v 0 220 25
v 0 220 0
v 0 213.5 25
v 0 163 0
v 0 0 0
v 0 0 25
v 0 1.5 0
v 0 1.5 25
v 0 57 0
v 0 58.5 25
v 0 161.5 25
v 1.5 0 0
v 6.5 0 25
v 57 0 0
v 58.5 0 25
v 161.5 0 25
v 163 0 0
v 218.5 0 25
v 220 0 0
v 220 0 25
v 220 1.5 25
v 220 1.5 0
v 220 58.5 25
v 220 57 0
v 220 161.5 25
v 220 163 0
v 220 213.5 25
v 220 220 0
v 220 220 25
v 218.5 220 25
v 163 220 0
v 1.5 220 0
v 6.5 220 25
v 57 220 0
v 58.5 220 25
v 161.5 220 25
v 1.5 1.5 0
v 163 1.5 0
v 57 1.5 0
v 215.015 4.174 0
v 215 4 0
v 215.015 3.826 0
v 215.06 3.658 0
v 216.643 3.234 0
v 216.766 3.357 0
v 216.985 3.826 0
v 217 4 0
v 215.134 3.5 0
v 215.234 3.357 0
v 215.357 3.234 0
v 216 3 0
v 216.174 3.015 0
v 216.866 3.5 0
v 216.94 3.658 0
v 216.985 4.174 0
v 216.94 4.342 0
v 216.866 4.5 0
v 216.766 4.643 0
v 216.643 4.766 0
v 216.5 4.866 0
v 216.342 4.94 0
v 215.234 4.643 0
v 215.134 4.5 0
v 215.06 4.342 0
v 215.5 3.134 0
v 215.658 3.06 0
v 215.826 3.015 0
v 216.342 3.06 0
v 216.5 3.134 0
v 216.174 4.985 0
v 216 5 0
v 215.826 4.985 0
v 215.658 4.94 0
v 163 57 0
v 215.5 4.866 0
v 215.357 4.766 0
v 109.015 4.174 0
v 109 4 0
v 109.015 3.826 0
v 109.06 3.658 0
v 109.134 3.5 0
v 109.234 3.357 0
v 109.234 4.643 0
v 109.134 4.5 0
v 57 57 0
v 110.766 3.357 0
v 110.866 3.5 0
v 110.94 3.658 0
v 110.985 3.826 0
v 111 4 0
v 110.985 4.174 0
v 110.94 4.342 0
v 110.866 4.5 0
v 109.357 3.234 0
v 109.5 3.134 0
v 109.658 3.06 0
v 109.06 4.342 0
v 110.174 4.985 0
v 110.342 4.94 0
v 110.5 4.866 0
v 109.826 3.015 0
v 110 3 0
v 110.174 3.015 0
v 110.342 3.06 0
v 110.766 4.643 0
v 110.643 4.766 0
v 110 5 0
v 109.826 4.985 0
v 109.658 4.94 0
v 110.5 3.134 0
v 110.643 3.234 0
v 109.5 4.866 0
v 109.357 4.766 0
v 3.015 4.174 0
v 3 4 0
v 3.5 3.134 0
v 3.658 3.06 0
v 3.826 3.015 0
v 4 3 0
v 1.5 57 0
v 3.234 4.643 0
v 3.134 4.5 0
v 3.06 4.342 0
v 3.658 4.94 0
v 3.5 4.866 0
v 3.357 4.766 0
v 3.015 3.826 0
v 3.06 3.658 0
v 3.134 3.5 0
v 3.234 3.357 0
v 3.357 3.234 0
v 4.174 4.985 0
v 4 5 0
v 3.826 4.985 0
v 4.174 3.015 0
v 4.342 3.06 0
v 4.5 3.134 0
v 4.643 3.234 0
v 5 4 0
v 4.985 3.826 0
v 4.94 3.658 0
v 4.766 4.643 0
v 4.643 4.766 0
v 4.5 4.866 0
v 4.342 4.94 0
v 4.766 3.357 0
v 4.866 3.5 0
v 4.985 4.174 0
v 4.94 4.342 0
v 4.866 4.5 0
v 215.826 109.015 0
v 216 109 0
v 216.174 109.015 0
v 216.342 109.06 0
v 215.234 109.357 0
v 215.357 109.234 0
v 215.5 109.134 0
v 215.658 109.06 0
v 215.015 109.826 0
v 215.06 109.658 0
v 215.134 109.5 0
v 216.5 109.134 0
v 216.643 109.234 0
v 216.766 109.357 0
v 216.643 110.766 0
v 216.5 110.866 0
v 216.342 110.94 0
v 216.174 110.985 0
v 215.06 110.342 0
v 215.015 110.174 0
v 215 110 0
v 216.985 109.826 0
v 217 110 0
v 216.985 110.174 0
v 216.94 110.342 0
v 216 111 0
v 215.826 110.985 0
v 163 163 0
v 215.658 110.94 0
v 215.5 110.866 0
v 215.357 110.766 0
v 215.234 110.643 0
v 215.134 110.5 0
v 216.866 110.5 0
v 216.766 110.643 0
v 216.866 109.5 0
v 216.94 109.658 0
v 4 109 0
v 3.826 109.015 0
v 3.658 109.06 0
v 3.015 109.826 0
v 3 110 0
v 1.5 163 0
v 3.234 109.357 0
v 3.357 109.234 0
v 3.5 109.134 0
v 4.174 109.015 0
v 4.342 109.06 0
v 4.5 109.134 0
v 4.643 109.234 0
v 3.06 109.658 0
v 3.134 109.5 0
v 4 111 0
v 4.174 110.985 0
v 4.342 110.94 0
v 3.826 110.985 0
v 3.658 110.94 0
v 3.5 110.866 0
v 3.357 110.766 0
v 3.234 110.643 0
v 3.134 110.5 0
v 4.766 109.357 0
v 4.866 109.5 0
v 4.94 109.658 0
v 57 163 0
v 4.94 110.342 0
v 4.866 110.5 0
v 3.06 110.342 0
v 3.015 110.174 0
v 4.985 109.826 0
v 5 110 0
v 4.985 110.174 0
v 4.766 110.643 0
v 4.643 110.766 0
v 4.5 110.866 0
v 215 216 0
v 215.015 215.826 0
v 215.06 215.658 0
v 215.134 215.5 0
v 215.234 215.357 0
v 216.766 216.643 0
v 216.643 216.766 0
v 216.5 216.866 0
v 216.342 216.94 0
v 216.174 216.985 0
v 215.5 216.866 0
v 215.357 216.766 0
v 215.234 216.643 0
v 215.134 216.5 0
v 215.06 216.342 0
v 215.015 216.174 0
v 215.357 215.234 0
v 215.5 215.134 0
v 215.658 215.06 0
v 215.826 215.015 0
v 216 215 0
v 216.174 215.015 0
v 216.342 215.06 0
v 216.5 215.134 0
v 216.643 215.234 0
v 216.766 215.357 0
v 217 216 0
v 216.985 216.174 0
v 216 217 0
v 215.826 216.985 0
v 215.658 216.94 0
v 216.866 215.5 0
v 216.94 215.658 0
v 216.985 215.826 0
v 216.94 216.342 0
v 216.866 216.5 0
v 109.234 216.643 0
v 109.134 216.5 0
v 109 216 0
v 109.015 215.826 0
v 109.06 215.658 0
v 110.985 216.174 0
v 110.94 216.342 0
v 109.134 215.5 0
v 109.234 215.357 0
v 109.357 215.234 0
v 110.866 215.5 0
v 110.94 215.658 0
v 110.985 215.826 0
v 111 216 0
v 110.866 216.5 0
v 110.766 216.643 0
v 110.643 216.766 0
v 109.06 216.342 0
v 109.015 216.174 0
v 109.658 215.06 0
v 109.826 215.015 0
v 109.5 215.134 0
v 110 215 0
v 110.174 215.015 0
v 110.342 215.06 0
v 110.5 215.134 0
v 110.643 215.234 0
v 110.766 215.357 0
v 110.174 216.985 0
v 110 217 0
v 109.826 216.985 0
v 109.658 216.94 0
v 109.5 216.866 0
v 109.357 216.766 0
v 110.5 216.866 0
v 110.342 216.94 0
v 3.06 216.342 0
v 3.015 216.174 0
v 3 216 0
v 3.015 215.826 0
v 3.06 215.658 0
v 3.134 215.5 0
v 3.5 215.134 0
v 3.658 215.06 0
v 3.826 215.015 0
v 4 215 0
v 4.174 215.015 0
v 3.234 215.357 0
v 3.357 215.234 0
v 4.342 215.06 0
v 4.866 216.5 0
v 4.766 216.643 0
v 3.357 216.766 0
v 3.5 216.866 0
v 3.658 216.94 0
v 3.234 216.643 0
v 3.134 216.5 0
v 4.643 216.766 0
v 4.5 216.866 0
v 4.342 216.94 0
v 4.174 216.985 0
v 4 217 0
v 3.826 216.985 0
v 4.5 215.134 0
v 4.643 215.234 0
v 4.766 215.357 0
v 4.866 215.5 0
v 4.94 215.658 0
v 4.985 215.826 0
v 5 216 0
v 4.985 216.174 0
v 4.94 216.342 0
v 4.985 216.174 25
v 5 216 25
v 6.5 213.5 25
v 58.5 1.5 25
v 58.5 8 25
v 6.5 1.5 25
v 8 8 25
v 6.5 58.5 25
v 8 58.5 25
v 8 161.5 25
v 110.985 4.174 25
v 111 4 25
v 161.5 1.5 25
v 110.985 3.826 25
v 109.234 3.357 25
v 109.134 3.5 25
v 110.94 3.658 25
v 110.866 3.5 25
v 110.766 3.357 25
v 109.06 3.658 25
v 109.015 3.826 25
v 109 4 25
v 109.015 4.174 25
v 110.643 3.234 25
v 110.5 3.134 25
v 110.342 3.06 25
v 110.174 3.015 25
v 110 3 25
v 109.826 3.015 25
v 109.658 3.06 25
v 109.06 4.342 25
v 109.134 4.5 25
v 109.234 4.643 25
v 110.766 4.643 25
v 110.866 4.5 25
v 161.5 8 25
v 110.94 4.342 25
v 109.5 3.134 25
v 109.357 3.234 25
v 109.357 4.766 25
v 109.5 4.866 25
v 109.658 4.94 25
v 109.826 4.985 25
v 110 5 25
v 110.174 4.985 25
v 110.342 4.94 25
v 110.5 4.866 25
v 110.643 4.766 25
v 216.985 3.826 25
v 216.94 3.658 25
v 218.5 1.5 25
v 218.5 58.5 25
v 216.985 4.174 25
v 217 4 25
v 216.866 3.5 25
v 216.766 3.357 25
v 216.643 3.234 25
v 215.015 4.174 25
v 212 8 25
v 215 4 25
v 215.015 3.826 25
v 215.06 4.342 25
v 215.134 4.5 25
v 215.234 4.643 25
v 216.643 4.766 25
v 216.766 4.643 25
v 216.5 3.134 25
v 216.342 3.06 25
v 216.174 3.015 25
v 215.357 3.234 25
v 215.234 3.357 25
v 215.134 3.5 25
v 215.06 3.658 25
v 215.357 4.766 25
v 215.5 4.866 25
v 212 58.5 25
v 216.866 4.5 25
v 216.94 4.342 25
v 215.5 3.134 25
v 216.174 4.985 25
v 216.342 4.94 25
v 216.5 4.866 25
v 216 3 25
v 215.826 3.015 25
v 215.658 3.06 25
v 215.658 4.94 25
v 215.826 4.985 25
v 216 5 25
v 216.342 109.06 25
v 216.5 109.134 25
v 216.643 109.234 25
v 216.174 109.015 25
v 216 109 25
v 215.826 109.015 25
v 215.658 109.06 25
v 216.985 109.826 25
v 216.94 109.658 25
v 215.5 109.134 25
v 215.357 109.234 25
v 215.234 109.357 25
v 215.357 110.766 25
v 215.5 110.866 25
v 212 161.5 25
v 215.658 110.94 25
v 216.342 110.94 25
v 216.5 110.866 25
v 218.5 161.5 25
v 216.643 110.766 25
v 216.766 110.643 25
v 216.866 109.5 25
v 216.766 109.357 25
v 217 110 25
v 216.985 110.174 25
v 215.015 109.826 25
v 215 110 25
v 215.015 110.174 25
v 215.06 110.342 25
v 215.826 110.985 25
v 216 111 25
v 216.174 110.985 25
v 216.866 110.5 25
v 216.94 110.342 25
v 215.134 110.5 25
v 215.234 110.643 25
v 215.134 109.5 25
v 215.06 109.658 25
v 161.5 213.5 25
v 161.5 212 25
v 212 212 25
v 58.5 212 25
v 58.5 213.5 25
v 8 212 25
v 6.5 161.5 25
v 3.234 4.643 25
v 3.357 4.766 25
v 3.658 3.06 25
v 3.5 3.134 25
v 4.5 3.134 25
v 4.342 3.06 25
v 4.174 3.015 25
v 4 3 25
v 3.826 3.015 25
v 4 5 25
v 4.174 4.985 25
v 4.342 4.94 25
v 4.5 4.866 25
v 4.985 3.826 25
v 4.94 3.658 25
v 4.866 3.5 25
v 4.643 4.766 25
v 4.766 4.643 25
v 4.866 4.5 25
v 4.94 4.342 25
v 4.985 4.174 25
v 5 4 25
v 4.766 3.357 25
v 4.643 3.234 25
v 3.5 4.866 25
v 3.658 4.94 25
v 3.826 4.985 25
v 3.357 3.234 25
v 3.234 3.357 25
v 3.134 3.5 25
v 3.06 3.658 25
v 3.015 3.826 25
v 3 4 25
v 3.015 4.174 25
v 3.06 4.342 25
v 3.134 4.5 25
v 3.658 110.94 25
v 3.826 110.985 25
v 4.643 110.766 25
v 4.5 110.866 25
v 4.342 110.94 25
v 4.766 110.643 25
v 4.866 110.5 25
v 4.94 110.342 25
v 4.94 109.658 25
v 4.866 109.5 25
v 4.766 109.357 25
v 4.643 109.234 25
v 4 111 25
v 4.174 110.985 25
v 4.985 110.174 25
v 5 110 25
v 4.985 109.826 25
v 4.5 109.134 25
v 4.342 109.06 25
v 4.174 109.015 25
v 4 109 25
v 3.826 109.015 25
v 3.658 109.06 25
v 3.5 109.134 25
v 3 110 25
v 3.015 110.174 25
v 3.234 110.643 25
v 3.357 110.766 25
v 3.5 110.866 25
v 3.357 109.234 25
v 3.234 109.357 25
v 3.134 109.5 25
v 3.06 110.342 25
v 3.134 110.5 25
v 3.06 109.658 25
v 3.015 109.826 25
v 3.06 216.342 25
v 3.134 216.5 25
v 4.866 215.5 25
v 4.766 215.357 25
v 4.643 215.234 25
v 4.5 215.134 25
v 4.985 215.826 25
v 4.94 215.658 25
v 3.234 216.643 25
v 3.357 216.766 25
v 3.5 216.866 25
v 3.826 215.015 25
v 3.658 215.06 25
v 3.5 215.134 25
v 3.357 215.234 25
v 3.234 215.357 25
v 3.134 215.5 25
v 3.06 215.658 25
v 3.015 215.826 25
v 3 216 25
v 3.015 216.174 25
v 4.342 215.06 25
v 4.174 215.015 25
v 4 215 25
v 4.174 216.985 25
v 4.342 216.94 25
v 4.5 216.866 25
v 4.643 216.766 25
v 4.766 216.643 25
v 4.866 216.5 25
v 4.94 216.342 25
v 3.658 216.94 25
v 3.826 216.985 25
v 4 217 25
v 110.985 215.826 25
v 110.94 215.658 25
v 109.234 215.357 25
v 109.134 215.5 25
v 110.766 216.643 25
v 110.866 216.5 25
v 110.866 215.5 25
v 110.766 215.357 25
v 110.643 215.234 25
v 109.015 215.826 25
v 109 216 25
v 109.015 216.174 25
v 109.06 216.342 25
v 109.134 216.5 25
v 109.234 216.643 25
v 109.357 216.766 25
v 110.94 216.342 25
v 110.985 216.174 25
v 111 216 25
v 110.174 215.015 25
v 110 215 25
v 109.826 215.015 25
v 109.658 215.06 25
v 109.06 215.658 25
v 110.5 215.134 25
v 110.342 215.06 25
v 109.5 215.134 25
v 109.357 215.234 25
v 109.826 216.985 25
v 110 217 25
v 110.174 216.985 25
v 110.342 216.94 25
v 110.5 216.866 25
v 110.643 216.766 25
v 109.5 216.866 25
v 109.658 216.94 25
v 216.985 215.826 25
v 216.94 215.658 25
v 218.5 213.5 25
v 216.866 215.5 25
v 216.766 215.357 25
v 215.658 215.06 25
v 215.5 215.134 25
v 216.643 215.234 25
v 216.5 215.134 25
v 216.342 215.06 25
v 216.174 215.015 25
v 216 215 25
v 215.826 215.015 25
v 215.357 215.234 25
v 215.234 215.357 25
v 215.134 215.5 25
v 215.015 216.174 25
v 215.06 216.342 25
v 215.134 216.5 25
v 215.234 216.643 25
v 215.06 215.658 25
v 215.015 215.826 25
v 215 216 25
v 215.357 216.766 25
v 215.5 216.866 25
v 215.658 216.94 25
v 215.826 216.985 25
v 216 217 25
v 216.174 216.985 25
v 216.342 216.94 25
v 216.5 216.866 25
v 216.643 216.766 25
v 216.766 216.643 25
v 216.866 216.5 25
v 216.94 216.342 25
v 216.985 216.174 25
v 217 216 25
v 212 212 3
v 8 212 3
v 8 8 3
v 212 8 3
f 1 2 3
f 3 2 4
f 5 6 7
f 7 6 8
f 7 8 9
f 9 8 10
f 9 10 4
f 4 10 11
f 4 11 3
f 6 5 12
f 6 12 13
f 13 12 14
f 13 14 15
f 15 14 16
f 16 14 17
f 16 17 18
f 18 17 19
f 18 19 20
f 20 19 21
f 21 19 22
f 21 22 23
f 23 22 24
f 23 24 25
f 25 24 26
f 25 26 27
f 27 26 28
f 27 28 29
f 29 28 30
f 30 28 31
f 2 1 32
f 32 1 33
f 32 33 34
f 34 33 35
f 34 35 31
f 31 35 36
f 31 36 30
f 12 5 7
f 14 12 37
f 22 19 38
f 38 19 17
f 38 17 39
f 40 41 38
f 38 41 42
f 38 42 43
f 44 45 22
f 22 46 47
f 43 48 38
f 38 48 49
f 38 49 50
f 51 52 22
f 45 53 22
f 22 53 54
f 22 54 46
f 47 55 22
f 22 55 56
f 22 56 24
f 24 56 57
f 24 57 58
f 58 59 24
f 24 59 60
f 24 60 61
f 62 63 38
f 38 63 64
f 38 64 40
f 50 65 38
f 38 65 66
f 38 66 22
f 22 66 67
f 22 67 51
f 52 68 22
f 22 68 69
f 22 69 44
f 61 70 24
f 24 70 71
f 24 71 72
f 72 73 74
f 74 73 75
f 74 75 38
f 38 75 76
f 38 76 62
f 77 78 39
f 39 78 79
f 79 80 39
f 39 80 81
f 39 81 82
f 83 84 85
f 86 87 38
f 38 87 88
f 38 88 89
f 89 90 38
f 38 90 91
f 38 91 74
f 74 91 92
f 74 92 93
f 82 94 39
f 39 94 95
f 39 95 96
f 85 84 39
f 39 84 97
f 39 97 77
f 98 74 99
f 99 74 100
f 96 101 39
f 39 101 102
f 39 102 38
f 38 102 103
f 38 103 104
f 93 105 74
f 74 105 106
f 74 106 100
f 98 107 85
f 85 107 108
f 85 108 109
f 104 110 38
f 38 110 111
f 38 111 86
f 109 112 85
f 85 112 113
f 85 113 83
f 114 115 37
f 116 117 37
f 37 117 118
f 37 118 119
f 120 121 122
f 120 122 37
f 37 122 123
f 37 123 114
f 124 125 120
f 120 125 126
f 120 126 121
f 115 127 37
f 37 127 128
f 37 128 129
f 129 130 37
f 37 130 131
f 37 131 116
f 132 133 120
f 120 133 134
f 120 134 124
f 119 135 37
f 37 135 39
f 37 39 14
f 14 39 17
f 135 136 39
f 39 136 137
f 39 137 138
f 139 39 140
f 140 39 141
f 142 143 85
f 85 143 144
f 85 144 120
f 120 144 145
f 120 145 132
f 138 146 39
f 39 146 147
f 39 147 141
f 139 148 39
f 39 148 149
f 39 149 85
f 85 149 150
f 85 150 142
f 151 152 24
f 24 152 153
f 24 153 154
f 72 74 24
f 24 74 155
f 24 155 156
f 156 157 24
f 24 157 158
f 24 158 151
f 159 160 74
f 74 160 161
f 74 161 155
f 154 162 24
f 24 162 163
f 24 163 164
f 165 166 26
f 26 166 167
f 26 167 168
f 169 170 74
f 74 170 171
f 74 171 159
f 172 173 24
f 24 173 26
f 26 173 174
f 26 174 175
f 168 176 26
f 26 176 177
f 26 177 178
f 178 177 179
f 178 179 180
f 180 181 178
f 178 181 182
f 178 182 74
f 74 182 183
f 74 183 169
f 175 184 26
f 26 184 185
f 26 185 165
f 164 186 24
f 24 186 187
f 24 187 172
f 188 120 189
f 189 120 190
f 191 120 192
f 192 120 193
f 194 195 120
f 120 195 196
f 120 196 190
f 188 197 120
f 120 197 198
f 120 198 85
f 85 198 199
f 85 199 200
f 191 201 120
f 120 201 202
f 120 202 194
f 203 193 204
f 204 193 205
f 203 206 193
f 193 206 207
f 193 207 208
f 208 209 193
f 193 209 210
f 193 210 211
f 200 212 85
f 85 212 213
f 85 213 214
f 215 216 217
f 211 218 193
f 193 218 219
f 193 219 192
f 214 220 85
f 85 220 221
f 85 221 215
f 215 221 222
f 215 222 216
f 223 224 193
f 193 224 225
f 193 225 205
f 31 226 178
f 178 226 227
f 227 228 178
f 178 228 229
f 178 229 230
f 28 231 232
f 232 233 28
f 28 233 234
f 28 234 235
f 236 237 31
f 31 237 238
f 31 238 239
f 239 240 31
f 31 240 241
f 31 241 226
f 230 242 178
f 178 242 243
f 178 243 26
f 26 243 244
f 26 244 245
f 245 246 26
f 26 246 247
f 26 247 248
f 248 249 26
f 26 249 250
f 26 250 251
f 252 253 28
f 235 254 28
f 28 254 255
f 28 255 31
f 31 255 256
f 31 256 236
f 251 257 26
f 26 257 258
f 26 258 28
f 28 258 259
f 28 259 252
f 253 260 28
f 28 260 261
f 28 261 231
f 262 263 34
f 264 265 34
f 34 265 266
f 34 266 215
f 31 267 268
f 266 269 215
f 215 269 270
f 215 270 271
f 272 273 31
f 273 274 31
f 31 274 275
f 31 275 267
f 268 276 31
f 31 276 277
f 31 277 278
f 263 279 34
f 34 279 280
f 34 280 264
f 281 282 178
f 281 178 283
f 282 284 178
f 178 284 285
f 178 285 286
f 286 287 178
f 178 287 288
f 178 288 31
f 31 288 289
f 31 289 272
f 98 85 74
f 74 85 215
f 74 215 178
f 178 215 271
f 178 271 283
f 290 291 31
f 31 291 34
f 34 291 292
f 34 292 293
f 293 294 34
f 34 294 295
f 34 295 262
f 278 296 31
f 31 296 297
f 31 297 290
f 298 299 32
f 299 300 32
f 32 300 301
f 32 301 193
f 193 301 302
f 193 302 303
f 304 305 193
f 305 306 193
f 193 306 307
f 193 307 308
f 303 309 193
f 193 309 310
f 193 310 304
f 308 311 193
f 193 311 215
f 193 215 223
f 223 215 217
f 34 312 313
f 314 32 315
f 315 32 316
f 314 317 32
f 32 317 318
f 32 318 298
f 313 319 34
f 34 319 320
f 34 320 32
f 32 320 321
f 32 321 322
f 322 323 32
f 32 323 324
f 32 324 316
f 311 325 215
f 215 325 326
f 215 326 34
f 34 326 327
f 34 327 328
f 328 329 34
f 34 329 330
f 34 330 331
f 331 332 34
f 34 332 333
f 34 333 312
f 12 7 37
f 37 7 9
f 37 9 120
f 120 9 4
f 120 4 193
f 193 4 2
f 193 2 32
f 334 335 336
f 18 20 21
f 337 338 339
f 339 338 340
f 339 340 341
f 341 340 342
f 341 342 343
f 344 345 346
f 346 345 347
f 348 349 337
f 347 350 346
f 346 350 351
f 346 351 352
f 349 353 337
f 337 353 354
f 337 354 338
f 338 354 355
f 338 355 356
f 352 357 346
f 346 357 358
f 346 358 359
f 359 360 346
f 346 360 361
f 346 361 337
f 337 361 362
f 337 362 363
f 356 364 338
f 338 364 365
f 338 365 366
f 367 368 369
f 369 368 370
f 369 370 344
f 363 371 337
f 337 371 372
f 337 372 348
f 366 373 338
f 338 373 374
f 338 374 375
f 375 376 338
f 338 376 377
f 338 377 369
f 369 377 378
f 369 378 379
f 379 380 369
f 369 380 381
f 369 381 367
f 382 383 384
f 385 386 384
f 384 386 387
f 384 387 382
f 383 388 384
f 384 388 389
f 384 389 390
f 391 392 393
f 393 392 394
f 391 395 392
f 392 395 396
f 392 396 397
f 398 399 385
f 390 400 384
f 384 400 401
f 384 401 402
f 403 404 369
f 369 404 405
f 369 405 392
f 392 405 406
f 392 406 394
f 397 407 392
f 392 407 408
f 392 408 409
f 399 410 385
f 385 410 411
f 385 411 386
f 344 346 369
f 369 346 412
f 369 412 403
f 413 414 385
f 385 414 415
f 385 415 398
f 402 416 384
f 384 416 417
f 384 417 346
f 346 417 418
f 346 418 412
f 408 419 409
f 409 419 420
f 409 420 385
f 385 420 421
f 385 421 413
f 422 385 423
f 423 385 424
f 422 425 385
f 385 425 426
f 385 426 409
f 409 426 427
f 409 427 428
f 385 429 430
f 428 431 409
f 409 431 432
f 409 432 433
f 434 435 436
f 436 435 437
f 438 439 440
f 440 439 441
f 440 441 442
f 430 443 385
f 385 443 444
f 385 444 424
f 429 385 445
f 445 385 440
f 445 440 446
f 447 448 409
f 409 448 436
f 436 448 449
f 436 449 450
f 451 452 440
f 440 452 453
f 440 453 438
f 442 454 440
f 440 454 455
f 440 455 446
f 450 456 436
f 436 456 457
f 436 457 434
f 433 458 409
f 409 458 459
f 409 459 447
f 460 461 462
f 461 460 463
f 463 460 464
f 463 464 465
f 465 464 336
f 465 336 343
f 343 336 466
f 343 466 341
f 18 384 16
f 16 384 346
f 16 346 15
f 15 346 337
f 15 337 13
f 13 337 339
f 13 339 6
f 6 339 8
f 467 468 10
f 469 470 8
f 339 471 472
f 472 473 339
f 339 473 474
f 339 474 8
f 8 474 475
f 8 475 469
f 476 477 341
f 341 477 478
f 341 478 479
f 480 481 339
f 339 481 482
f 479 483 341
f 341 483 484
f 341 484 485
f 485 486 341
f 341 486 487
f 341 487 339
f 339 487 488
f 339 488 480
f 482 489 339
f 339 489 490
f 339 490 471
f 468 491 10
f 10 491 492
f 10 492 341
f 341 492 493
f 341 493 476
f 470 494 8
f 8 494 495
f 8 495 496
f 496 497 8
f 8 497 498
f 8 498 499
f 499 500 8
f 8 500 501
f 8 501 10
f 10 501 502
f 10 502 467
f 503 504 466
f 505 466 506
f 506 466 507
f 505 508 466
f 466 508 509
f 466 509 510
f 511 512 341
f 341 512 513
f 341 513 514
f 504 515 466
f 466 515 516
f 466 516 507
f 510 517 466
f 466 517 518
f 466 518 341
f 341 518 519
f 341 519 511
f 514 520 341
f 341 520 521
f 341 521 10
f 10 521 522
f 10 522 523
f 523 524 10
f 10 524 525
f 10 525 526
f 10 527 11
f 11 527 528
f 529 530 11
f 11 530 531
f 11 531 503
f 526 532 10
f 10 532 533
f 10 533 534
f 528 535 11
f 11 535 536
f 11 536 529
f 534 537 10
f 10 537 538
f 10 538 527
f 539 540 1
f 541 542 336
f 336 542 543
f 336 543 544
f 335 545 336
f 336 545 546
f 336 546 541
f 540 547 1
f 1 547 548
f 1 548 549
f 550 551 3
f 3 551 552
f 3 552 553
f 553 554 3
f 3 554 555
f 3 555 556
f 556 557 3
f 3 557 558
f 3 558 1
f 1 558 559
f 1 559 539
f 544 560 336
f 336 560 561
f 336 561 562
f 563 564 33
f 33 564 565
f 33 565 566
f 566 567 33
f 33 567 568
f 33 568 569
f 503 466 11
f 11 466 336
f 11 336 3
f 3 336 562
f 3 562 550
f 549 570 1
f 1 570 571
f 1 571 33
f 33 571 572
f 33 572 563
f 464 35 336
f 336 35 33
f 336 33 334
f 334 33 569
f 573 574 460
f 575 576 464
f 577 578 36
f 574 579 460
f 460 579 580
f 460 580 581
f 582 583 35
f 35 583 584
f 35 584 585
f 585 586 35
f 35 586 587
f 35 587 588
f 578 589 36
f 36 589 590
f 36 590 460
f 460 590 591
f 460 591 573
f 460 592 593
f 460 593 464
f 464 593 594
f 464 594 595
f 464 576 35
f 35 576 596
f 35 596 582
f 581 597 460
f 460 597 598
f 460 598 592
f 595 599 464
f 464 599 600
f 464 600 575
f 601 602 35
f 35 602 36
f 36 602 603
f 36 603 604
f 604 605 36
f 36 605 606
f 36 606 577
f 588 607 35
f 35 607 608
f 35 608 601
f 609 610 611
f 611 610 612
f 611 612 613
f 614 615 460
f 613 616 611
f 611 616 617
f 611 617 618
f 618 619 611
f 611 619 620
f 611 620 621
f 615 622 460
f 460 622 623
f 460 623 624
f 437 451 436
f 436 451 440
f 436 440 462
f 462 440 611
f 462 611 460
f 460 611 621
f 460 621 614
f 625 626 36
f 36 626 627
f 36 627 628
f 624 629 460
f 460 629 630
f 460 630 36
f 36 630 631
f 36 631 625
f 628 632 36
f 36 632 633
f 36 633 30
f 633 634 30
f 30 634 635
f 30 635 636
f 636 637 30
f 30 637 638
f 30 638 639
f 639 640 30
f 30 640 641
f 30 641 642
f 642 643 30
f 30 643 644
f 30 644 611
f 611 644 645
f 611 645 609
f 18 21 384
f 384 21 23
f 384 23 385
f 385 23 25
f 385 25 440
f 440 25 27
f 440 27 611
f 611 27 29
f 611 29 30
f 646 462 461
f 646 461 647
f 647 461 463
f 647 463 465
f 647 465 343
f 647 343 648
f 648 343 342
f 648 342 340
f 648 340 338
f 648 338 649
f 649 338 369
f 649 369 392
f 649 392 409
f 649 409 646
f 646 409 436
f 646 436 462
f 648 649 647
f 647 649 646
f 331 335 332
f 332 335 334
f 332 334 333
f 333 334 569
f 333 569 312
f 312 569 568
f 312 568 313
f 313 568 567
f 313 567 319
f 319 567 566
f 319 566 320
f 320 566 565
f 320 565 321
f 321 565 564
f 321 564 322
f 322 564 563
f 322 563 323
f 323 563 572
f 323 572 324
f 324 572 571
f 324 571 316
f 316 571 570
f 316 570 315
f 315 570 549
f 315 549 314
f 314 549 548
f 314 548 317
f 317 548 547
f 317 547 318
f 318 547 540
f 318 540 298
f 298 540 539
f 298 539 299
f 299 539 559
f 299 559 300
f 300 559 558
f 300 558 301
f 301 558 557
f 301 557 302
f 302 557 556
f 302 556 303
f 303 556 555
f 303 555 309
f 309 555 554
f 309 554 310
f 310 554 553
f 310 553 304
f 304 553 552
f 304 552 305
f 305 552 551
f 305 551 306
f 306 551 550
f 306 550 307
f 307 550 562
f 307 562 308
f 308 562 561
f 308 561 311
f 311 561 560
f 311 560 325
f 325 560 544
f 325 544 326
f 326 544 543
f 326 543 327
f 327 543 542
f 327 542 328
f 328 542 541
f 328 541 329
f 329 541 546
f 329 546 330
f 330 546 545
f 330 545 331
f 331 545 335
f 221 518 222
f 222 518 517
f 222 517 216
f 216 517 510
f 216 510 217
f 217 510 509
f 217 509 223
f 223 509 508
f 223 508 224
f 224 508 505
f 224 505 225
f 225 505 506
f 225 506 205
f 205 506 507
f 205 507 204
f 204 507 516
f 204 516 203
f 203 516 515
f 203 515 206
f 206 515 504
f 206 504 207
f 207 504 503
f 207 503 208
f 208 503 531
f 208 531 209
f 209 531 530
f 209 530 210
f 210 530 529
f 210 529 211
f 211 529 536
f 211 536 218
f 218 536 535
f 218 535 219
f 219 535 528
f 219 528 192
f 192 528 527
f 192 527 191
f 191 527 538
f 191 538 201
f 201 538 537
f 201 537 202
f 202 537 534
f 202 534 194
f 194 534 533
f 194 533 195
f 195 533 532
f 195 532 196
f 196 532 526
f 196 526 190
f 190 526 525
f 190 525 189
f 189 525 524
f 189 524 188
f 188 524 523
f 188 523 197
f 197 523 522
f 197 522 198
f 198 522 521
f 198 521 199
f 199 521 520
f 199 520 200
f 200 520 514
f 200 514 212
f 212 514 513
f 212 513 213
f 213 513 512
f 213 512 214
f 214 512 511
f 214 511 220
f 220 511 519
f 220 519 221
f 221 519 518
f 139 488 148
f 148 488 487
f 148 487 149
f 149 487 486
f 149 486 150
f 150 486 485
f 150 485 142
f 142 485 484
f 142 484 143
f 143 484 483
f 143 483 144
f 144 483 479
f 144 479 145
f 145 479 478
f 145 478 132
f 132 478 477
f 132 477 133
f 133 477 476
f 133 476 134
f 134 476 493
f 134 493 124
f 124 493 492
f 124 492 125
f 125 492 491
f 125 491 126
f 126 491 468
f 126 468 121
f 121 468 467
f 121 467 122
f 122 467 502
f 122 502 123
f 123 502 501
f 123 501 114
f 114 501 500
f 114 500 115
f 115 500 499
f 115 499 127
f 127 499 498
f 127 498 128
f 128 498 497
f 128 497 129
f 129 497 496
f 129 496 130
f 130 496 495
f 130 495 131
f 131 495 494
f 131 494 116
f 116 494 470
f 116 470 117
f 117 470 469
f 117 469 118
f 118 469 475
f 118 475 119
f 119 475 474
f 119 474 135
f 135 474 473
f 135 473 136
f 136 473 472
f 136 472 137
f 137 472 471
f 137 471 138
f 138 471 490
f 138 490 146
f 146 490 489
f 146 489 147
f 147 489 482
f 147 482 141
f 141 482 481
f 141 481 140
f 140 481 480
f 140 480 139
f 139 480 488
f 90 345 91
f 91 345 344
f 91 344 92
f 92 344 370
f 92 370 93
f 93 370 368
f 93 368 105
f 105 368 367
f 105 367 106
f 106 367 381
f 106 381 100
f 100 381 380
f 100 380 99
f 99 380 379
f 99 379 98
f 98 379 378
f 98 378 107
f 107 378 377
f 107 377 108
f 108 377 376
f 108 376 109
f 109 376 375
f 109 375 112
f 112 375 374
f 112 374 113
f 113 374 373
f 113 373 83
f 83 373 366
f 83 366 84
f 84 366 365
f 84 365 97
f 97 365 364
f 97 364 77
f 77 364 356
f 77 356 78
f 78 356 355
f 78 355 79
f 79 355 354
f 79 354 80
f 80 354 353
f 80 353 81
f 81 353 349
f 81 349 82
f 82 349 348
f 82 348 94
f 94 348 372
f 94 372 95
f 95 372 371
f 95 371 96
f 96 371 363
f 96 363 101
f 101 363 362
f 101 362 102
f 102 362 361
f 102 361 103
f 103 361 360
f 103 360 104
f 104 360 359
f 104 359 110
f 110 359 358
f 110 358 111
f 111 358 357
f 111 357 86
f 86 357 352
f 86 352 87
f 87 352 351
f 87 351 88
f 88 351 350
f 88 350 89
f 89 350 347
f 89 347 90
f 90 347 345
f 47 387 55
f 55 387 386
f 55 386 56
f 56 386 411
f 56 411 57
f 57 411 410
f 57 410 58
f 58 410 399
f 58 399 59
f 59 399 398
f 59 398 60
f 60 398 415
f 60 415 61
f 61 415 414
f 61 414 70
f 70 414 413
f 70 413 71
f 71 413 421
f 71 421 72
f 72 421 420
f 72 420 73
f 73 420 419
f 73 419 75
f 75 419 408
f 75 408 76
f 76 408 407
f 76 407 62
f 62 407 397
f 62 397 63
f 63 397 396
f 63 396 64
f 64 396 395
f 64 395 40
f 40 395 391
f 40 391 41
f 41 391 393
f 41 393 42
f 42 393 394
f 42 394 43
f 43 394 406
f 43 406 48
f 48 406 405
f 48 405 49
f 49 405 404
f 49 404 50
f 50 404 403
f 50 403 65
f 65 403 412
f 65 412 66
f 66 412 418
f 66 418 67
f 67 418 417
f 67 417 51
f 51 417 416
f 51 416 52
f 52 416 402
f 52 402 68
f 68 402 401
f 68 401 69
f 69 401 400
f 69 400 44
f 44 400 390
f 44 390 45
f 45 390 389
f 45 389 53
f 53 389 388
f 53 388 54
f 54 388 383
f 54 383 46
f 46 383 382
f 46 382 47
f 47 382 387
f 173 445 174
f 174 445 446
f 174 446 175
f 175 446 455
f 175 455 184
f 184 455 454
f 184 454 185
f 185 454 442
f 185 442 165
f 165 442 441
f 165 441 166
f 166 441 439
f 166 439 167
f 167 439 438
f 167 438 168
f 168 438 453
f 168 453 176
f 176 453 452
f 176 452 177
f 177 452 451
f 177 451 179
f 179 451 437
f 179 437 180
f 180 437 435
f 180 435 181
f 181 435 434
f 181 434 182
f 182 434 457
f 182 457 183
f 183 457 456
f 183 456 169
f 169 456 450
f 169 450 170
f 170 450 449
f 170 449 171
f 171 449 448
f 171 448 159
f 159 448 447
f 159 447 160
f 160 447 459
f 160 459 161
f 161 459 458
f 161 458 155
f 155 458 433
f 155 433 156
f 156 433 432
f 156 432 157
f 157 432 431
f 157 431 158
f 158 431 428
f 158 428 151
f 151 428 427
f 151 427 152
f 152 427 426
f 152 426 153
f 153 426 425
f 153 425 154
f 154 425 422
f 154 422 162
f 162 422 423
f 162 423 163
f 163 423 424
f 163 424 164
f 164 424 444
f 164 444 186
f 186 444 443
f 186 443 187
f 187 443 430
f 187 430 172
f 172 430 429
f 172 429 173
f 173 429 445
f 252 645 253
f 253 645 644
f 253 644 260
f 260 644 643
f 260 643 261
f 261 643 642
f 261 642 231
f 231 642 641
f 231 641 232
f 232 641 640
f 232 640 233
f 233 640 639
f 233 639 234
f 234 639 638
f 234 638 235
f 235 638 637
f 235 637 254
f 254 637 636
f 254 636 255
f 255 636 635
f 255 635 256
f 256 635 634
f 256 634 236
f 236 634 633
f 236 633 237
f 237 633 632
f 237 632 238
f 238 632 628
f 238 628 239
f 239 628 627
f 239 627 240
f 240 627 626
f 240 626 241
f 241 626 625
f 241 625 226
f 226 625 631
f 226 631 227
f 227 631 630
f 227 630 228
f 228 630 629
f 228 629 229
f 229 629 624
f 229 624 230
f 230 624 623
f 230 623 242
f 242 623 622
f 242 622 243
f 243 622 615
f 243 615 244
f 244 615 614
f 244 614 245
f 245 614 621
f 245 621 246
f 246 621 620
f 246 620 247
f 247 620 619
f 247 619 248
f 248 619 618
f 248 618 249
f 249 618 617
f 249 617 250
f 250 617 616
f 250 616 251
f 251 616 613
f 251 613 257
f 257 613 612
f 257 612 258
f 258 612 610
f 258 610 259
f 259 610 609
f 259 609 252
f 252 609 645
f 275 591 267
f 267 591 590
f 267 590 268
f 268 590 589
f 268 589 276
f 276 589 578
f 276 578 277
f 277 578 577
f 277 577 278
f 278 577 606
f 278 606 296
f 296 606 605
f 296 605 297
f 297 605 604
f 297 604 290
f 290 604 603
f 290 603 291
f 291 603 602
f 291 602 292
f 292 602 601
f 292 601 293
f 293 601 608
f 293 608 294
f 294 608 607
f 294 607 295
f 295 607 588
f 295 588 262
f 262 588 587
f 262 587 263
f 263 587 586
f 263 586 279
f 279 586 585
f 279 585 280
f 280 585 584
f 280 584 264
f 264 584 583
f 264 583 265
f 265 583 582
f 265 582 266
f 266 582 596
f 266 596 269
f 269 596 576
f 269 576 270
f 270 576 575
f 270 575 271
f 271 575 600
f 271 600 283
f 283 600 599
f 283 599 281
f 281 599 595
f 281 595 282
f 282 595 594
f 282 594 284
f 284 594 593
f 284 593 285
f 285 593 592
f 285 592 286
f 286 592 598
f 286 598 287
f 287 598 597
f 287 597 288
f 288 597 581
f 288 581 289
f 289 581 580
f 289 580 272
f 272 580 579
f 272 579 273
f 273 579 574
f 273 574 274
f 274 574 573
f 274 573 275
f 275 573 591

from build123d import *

# Parameters (mm, degrees)
SKETCH1_W           = 220
SKETCH1_H           = 220
BOSS_EXTRUDE1_DEPTH = 3
SKETCH2_W           = 220
SKETCH2_H           = 220
SKETCH2_W_2         = 204
SKETCH2_H_2         = 204
BOSS_EXTRUDE3_DEPTH = 22
SKETCH3_R           = 1
CUT_EXTRUDE1_DEPTH  = 313.1297807


with BuildPart() as part:
    # Sketch1 → Boss-Extrude1 (new body)
    with BuildSketch(Plane.XY):
        with Locations((110, 110)):
            Rectangle(SKETCH1_W, SKETCH1_H)
    extrude(amount=BOSS_EXTRUDE1_DEPTH)

    # Sketch2 → Boss-Extrude3 (add)
    with BuildSketch(Plane.XY.offset(3)):
        with Locations((110, 110)):
            Rectangle(SKETCH2_W, SKETCH2_H)
        with Locations((110, 110)):
            Rectangle(SKETCH2_W_2, SKETCH2_H_2, mode=Mode.SUBTRACT)
    extrude(amount=BOSS_EXTRUDE3_DEPTH)

    # Sketch3 → Cut-Extrude1 (cut, through all)
    with BuildSketch(Plane.XY.offset(25)):
        with Locations((4, 216)):
            Circle(SKETCH3_R)
        with Locations((110, 216)):
            Circle(SKETCH3_R)
        with Locations((216, 216)):
            Circle(SKETCH3_R)
        with Locations((216, 110)):
            Circle(SKETCH3_R)
        with Locations((216, 4)):
            Circle(SKETCH3_R)
        with Locations((110, 4)):
            Circle(SKETCH3_R)
        with Locations((4, 4)):
            Circle(SKETCH3_R)
        with Locations((4, 110)):
            Circle(SKETCH3_R)
    extrude(amount=-CUT_EXTRUDE1_DEPTH, mode=Mode.SUBTRACT)


solid = part.part
